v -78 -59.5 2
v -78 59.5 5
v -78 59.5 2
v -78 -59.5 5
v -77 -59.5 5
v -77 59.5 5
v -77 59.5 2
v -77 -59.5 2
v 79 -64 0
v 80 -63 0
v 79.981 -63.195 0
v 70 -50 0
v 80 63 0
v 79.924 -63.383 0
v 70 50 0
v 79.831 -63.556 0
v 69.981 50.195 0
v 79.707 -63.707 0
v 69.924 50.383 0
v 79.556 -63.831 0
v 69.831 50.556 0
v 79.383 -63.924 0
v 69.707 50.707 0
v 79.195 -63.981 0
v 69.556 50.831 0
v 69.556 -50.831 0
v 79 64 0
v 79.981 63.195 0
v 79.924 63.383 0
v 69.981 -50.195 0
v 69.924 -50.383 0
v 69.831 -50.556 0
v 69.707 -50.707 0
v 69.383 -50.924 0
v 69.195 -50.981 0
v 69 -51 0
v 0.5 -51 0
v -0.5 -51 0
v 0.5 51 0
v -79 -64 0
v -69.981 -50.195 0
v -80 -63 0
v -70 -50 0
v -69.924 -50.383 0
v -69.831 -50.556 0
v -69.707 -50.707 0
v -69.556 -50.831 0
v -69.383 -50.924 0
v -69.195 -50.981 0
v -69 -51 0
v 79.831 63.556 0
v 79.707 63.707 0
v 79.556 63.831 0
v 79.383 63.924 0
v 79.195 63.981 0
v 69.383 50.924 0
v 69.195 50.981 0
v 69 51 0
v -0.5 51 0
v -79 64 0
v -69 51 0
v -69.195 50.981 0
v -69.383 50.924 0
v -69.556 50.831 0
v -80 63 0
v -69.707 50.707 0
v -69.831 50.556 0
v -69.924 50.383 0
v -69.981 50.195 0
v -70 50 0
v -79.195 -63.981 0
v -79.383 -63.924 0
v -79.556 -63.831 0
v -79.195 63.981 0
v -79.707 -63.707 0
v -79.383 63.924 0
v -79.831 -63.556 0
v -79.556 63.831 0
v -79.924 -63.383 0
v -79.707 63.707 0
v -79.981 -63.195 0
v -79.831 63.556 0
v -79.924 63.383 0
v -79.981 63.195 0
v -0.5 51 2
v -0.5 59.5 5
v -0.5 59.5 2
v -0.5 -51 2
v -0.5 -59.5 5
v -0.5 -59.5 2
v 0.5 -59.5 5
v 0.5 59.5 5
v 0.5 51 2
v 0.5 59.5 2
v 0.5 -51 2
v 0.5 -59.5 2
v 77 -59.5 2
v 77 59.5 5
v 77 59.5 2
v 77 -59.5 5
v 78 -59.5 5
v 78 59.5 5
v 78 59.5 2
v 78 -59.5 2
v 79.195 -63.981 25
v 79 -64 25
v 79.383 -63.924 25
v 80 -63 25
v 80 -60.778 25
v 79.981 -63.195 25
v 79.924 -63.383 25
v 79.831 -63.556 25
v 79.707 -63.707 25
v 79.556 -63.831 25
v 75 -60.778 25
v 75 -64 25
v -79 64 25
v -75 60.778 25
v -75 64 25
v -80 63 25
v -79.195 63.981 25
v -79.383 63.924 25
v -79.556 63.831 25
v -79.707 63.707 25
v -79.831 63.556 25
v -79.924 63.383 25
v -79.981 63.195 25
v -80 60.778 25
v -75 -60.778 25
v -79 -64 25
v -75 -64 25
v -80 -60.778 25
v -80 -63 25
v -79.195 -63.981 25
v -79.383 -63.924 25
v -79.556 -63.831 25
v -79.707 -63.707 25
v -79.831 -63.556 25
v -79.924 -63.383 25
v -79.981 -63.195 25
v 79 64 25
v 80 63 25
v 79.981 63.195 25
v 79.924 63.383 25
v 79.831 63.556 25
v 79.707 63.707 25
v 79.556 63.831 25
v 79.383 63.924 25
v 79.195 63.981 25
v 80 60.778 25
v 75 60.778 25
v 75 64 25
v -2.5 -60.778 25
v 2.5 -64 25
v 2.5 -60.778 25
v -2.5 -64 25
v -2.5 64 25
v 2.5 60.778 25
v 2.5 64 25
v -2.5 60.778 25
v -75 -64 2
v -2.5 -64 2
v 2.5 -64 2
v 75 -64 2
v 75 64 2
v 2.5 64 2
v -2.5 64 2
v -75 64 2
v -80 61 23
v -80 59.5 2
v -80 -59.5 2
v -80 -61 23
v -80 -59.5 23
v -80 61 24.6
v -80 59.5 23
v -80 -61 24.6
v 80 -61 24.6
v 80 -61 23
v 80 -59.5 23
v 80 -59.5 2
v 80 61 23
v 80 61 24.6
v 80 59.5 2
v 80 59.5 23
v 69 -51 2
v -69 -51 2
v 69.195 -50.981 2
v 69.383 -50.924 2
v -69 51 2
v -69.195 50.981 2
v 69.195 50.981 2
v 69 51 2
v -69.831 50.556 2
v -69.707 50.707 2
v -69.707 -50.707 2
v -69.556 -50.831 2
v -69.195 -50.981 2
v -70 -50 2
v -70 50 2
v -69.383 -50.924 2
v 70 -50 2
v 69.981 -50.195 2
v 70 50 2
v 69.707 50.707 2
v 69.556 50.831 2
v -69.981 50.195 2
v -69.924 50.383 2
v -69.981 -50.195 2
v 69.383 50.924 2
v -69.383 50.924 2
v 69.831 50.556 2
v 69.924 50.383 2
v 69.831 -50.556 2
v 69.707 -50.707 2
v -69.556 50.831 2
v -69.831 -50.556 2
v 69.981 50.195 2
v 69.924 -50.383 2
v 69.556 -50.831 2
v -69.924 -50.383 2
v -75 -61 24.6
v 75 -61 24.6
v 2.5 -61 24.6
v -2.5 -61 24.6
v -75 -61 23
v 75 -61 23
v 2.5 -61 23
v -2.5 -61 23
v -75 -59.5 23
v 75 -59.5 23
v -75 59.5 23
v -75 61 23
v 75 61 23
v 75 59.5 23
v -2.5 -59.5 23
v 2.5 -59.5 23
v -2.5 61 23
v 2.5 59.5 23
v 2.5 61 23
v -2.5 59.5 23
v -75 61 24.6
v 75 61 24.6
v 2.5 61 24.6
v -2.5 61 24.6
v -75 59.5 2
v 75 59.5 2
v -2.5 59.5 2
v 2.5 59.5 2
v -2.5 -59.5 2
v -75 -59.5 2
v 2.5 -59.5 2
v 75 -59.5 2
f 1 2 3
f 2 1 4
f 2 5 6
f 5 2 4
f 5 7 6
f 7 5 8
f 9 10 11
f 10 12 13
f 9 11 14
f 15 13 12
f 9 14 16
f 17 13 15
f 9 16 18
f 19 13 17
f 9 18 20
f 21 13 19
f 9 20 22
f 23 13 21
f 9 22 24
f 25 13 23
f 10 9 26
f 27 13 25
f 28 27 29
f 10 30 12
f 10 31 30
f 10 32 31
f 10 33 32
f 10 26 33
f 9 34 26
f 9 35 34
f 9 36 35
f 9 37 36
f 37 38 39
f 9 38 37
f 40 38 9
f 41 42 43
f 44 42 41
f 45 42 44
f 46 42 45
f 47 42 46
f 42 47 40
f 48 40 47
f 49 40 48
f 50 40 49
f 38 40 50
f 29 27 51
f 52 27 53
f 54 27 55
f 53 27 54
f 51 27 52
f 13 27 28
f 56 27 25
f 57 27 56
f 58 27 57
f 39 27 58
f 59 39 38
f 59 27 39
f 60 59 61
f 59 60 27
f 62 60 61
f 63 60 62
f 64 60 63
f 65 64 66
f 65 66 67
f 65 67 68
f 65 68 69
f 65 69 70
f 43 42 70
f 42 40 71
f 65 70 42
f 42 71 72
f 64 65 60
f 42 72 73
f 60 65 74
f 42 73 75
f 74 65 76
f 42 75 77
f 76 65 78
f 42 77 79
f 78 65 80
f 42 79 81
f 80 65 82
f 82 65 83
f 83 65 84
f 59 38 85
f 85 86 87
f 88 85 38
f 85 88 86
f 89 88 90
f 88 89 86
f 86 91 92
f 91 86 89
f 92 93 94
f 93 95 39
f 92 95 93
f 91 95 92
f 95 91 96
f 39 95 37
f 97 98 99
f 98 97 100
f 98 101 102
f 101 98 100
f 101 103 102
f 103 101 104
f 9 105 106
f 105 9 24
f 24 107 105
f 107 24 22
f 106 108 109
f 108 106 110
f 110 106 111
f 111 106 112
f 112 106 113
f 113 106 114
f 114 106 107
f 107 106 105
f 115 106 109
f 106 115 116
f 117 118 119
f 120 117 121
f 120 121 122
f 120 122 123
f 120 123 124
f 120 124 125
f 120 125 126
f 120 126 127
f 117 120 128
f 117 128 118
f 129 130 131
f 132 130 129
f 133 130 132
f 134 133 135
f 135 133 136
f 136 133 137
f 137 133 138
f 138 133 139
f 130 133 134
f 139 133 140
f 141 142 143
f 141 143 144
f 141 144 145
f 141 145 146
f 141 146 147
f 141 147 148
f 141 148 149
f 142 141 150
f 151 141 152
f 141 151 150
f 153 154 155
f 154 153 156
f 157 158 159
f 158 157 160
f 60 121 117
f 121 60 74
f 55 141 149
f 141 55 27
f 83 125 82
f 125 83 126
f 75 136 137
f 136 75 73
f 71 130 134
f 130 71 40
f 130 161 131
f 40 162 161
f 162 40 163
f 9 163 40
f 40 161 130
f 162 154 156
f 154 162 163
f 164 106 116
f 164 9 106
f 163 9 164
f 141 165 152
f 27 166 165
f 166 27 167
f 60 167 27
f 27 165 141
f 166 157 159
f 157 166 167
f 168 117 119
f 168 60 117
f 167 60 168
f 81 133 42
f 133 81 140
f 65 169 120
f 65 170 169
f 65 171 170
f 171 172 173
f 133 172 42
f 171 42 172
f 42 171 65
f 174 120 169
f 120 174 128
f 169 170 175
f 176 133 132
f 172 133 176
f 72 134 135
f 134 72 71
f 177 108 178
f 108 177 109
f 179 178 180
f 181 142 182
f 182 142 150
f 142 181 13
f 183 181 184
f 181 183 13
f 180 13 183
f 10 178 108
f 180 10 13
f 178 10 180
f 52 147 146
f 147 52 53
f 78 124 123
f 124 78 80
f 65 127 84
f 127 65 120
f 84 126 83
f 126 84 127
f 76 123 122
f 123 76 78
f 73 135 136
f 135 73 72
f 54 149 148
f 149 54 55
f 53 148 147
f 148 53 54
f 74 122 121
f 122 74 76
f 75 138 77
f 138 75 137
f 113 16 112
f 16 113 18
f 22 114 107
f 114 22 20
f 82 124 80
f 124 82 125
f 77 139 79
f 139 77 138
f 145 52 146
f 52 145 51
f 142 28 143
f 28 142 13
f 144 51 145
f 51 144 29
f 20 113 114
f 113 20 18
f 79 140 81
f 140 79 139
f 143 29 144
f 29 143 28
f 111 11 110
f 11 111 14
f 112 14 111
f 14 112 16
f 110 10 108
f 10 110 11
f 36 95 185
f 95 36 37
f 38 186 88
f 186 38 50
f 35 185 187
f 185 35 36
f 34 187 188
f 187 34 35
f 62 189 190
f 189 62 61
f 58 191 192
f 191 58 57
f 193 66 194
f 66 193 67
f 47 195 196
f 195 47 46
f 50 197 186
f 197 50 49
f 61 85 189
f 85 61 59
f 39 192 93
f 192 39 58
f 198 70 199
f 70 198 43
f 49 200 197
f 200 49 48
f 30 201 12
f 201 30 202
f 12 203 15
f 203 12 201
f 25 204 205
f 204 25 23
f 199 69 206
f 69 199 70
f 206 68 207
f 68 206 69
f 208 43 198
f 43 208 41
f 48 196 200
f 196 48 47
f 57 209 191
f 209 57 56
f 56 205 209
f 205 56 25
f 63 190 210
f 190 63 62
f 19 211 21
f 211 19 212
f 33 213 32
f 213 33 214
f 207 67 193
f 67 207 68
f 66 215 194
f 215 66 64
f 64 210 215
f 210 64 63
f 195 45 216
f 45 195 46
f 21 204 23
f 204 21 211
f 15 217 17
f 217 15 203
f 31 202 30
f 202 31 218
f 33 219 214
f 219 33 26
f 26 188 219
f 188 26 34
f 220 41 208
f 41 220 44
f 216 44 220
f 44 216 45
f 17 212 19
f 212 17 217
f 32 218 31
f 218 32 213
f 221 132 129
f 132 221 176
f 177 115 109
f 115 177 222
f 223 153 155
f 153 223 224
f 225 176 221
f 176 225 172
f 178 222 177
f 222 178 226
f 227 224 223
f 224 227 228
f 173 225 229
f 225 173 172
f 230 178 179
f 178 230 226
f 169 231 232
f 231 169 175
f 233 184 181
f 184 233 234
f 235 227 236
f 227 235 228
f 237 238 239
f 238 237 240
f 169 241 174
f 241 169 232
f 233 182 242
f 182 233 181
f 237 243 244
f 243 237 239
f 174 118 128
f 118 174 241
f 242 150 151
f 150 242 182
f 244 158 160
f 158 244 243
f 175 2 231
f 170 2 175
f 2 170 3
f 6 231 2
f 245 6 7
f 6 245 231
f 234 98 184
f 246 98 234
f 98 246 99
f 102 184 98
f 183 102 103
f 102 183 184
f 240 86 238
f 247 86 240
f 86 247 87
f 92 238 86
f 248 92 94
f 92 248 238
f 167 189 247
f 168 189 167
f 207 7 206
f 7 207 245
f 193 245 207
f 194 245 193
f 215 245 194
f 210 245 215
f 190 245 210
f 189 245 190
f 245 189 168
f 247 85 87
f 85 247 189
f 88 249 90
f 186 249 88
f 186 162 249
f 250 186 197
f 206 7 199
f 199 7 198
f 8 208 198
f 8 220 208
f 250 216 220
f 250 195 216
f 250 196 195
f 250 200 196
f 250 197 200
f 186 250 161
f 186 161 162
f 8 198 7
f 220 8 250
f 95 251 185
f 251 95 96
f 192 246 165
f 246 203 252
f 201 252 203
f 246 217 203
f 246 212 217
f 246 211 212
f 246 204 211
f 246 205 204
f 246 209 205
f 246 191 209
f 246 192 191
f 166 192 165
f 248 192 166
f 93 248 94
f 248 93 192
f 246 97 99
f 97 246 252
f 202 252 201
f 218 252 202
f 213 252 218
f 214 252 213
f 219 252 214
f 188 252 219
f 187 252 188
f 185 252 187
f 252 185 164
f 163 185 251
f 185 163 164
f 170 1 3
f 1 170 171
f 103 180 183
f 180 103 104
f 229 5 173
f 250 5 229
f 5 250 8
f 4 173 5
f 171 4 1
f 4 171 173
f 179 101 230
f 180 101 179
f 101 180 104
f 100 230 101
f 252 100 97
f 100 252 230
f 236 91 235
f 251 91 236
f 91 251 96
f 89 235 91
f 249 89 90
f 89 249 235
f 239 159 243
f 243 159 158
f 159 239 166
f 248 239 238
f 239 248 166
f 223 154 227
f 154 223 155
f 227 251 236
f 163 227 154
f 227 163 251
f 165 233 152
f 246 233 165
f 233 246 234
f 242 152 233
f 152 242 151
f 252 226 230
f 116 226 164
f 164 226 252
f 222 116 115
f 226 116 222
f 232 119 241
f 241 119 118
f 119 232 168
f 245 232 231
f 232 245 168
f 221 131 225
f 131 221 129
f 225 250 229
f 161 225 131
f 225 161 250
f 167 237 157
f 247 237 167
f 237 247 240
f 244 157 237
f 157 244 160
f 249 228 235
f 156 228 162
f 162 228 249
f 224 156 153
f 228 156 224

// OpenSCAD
$dx = 160;
$dy = 122;
$fn = 32;
$h = 25;



difference() {
    rcube([$dx,$dy+6,$h],1);
    rcube([$dx-20,$dy-20,$h+2],1);
    // PCB Dummy:
    z($h-2) hull() {
        zcube([$dx+20,$dy,1.6]);
        zcube([$dx+20,$dy-1,2.5]);
    }
    z(2)zcube([$dx+20,$dy-3,$h-4]);
    t([($dx-15)/4+2.5,0,2])zcube([($dx-15)/2,$dy+10,$h+3]);
    t([($dx-15)/-4-2.5,0,2])zcube([($dx-15)/2,$dy+10,$h+3]);
}

for(i=[-1,0,1]) t([i*($dx/2-2.5),0,0]) zcube([1,$dy,5]);





module rcube(dim,r=1) {
    linear_extrude(dim[2]) offset(r) square([dim[0]-2*r,dim[1]-2*r],center=true);
}

module rcubeo(dim,r=1) {
    linear_extrude(dim[2]) offset(r) square([dim[0],dim[1]],center=true);
}

module zcube(dim) {
    translate([0,0,dim[2]/2]) cube(dim,center=true);
}

module t(dim) translate(dim) children();

module z(dim) translate([0,0,dim]) children();

module r(dim) rotate(dim) children();
